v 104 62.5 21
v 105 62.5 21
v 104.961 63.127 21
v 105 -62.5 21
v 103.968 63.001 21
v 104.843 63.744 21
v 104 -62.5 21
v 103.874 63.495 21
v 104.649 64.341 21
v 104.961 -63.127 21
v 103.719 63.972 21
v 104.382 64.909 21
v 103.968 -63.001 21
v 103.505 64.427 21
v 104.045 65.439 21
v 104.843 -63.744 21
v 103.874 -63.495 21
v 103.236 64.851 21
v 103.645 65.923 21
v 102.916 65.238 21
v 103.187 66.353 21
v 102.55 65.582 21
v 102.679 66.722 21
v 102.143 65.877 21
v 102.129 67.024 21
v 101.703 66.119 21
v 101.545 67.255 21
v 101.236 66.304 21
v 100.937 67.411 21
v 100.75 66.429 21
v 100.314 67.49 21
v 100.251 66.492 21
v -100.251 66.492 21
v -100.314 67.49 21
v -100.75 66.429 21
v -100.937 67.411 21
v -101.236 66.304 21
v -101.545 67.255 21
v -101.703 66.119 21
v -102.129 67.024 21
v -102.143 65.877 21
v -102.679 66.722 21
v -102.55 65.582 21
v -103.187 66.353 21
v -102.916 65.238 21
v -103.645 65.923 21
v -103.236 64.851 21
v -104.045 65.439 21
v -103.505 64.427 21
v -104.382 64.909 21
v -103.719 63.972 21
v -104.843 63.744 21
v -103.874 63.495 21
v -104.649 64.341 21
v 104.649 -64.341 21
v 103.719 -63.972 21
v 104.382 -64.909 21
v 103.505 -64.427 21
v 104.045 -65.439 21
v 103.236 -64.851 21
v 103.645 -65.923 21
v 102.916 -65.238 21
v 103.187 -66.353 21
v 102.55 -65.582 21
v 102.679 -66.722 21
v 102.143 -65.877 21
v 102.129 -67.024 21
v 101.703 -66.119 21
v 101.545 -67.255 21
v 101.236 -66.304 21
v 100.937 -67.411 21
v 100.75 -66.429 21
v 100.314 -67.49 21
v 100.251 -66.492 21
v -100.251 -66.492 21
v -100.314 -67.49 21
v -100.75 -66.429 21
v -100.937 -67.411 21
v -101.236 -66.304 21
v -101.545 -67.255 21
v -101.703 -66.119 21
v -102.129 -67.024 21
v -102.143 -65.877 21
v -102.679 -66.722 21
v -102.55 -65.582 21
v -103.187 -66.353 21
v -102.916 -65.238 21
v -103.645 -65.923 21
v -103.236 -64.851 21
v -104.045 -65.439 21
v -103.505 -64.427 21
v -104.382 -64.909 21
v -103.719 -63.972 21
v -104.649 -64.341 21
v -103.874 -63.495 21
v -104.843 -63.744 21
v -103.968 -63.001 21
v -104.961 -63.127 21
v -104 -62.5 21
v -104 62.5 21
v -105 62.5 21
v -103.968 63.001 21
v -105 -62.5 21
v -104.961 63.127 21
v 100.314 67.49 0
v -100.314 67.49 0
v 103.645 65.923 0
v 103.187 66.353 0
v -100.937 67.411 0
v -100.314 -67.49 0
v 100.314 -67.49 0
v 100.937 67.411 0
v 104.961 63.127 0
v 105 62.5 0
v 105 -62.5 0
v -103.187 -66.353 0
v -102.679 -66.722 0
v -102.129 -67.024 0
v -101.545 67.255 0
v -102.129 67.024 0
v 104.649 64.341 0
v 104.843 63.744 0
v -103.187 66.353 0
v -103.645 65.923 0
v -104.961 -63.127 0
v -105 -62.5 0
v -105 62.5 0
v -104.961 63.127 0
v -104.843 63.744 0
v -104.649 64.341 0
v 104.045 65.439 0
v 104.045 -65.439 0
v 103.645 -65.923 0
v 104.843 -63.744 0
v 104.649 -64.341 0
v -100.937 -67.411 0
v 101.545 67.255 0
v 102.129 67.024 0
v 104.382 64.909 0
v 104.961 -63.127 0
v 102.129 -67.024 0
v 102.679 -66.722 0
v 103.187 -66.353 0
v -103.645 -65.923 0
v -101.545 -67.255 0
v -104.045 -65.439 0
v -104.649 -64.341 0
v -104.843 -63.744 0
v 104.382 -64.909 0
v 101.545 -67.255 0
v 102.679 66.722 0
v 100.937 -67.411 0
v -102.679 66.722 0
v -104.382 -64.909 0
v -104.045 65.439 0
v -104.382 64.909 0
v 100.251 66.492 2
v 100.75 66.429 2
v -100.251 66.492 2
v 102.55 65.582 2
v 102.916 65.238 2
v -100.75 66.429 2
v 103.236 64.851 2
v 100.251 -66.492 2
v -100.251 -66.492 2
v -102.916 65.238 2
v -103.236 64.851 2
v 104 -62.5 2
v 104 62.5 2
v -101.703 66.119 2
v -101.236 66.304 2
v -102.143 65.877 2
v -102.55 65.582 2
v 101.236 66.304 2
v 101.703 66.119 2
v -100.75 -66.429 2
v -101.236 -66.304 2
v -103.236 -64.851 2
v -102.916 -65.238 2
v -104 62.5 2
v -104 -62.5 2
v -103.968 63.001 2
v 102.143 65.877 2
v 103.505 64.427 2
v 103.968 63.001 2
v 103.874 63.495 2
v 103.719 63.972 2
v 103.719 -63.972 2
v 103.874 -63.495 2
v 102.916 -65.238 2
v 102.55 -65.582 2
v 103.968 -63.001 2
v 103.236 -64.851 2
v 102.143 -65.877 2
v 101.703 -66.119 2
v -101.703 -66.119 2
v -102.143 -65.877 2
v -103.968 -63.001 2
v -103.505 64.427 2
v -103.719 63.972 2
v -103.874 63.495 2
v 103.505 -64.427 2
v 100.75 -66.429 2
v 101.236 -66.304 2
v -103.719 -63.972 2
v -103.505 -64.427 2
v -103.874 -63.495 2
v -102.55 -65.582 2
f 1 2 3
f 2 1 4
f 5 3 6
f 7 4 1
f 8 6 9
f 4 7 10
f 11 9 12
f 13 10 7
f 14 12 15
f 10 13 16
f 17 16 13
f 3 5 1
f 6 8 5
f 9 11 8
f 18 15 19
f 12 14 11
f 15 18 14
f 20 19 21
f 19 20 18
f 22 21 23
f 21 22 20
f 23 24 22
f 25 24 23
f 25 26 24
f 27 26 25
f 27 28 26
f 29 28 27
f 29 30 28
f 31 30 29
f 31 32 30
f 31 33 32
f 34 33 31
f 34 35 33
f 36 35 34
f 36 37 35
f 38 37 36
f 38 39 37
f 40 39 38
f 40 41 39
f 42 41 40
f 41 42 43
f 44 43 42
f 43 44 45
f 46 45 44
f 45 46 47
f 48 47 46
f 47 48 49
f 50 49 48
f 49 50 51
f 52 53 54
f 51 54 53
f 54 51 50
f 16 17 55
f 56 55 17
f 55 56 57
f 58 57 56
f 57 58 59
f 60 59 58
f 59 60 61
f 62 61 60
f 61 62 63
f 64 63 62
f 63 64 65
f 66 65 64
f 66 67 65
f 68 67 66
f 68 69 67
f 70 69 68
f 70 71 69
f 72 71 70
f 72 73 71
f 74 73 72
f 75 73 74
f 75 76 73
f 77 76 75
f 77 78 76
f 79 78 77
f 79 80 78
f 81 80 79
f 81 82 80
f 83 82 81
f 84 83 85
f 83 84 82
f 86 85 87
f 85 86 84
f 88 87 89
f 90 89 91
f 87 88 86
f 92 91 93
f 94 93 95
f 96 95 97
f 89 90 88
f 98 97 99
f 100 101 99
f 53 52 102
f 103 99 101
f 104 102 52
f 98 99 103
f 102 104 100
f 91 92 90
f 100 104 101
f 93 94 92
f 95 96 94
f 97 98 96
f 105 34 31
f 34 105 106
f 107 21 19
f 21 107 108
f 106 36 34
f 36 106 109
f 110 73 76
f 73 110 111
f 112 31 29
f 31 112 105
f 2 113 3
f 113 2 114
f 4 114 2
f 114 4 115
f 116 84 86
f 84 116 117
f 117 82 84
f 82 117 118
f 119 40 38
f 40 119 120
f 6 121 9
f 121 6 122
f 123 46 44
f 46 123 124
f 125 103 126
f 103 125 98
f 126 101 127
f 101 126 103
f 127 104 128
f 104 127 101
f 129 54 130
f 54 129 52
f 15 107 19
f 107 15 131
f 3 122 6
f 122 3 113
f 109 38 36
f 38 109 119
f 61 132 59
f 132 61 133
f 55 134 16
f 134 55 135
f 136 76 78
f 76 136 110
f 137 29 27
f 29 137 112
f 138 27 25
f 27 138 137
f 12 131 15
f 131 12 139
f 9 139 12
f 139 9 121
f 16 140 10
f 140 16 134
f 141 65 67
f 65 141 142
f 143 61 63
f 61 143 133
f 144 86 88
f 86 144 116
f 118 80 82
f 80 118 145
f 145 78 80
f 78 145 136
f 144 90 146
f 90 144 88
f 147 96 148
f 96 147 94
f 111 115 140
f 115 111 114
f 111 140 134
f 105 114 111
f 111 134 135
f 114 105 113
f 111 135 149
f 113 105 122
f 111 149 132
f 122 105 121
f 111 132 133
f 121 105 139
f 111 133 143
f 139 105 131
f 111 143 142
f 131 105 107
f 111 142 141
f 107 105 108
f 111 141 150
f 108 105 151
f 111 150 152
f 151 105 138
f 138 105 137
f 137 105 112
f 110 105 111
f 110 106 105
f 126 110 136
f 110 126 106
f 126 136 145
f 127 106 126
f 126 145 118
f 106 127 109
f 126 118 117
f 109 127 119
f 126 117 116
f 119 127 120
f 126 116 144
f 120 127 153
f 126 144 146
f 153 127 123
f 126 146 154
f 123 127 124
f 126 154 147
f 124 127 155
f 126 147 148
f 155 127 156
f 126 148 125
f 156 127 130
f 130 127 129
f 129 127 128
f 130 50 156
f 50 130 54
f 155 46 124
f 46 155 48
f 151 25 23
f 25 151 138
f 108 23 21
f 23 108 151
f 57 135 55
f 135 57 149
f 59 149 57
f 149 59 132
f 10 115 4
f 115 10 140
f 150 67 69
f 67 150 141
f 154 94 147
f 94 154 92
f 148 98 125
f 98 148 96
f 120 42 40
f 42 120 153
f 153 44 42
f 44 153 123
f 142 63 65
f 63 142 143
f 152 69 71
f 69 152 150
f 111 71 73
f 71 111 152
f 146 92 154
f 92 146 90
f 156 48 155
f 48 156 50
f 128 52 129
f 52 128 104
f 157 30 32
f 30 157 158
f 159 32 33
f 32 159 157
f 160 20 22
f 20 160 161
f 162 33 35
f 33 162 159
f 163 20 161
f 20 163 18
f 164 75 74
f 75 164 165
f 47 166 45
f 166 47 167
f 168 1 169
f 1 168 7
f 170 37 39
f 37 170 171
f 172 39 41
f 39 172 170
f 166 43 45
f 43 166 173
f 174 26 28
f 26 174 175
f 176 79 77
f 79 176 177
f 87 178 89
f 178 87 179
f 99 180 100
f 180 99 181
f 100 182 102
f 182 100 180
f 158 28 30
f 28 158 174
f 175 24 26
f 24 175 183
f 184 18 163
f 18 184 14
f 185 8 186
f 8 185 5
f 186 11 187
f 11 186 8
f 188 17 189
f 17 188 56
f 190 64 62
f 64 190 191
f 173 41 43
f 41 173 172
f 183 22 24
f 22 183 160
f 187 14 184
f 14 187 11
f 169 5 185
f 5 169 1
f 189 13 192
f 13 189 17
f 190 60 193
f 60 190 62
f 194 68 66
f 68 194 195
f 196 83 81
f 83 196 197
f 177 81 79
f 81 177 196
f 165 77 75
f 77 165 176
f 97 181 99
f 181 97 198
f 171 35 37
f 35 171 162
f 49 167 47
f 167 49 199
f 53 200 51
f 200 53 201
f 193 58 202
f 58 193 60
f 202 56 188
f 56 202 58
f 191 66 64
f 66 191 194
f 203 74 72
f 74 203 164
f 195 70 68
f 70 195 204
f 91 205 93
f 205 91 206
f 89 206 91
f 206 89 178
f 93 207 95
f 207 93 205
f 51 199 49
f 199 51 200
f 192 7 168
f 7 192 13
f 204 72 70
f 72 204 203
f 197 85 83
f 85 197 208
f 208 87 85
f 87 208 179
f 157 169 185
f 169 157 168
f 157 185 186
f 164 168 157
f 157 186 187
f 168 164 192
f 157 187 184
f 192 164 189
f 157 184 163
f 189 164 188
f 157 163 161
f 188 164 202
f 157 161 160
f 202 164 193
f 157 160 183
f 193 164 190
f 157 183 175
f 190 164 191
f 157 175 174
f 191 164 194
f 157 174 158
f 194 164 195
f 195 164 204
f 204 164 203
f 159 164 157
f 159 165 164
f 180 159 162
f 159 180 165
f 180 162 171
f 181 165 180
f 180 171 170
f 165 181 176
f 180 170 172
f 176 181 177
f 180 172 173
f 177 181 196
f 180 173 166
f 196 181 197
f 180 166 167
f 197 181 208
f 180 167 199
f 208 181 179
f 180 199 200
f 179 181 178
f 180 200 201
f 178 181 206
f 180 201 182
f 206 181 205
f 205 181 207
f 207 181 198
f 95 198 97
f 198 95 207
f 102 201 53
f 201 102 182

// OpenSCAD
$fn = 50;


difference() {
	union() {
		hull() {
			translate(v = [-100.0000000000, 62.5000000000, 0]) {
				cylinder(h = 21, r = 5);
			}
			translate(v = [100.0000000000, 62.5000000000, 0]) {
				cylinder(h = 21, r = 5);
			}
			translate(v = [-100.0000000000, -62.5000000000, 0]) {
				cylinder(h = 21, r = 5);
			}
			translate(v = [100.0000000000, -62.5000000000, 0]) {
				cylinder(h = 21, r = 5);
			}
		}
	}
	union() {
		translate(v = [0, 0, 2]) {
			hull() {
				translate(v = [-100.0000000000, 62.5000000000, 0]) {
					cylinder(h = 19, r = 4);
				}
				translate(v = [100.0000000000, 62.5000000000, 0]) {
					cylinder(h = 19, r = 4);
				}
				translate(v = [-100.0000000000, -62.5000000000, 0]) {
					cylinder(h = 19, r = 4);
				}
				translate(v = [100.0000000000, -62.5000000000, 0]) {
					cylinder(h = 19, r = 4);
				}
			}
		}
	}
}
